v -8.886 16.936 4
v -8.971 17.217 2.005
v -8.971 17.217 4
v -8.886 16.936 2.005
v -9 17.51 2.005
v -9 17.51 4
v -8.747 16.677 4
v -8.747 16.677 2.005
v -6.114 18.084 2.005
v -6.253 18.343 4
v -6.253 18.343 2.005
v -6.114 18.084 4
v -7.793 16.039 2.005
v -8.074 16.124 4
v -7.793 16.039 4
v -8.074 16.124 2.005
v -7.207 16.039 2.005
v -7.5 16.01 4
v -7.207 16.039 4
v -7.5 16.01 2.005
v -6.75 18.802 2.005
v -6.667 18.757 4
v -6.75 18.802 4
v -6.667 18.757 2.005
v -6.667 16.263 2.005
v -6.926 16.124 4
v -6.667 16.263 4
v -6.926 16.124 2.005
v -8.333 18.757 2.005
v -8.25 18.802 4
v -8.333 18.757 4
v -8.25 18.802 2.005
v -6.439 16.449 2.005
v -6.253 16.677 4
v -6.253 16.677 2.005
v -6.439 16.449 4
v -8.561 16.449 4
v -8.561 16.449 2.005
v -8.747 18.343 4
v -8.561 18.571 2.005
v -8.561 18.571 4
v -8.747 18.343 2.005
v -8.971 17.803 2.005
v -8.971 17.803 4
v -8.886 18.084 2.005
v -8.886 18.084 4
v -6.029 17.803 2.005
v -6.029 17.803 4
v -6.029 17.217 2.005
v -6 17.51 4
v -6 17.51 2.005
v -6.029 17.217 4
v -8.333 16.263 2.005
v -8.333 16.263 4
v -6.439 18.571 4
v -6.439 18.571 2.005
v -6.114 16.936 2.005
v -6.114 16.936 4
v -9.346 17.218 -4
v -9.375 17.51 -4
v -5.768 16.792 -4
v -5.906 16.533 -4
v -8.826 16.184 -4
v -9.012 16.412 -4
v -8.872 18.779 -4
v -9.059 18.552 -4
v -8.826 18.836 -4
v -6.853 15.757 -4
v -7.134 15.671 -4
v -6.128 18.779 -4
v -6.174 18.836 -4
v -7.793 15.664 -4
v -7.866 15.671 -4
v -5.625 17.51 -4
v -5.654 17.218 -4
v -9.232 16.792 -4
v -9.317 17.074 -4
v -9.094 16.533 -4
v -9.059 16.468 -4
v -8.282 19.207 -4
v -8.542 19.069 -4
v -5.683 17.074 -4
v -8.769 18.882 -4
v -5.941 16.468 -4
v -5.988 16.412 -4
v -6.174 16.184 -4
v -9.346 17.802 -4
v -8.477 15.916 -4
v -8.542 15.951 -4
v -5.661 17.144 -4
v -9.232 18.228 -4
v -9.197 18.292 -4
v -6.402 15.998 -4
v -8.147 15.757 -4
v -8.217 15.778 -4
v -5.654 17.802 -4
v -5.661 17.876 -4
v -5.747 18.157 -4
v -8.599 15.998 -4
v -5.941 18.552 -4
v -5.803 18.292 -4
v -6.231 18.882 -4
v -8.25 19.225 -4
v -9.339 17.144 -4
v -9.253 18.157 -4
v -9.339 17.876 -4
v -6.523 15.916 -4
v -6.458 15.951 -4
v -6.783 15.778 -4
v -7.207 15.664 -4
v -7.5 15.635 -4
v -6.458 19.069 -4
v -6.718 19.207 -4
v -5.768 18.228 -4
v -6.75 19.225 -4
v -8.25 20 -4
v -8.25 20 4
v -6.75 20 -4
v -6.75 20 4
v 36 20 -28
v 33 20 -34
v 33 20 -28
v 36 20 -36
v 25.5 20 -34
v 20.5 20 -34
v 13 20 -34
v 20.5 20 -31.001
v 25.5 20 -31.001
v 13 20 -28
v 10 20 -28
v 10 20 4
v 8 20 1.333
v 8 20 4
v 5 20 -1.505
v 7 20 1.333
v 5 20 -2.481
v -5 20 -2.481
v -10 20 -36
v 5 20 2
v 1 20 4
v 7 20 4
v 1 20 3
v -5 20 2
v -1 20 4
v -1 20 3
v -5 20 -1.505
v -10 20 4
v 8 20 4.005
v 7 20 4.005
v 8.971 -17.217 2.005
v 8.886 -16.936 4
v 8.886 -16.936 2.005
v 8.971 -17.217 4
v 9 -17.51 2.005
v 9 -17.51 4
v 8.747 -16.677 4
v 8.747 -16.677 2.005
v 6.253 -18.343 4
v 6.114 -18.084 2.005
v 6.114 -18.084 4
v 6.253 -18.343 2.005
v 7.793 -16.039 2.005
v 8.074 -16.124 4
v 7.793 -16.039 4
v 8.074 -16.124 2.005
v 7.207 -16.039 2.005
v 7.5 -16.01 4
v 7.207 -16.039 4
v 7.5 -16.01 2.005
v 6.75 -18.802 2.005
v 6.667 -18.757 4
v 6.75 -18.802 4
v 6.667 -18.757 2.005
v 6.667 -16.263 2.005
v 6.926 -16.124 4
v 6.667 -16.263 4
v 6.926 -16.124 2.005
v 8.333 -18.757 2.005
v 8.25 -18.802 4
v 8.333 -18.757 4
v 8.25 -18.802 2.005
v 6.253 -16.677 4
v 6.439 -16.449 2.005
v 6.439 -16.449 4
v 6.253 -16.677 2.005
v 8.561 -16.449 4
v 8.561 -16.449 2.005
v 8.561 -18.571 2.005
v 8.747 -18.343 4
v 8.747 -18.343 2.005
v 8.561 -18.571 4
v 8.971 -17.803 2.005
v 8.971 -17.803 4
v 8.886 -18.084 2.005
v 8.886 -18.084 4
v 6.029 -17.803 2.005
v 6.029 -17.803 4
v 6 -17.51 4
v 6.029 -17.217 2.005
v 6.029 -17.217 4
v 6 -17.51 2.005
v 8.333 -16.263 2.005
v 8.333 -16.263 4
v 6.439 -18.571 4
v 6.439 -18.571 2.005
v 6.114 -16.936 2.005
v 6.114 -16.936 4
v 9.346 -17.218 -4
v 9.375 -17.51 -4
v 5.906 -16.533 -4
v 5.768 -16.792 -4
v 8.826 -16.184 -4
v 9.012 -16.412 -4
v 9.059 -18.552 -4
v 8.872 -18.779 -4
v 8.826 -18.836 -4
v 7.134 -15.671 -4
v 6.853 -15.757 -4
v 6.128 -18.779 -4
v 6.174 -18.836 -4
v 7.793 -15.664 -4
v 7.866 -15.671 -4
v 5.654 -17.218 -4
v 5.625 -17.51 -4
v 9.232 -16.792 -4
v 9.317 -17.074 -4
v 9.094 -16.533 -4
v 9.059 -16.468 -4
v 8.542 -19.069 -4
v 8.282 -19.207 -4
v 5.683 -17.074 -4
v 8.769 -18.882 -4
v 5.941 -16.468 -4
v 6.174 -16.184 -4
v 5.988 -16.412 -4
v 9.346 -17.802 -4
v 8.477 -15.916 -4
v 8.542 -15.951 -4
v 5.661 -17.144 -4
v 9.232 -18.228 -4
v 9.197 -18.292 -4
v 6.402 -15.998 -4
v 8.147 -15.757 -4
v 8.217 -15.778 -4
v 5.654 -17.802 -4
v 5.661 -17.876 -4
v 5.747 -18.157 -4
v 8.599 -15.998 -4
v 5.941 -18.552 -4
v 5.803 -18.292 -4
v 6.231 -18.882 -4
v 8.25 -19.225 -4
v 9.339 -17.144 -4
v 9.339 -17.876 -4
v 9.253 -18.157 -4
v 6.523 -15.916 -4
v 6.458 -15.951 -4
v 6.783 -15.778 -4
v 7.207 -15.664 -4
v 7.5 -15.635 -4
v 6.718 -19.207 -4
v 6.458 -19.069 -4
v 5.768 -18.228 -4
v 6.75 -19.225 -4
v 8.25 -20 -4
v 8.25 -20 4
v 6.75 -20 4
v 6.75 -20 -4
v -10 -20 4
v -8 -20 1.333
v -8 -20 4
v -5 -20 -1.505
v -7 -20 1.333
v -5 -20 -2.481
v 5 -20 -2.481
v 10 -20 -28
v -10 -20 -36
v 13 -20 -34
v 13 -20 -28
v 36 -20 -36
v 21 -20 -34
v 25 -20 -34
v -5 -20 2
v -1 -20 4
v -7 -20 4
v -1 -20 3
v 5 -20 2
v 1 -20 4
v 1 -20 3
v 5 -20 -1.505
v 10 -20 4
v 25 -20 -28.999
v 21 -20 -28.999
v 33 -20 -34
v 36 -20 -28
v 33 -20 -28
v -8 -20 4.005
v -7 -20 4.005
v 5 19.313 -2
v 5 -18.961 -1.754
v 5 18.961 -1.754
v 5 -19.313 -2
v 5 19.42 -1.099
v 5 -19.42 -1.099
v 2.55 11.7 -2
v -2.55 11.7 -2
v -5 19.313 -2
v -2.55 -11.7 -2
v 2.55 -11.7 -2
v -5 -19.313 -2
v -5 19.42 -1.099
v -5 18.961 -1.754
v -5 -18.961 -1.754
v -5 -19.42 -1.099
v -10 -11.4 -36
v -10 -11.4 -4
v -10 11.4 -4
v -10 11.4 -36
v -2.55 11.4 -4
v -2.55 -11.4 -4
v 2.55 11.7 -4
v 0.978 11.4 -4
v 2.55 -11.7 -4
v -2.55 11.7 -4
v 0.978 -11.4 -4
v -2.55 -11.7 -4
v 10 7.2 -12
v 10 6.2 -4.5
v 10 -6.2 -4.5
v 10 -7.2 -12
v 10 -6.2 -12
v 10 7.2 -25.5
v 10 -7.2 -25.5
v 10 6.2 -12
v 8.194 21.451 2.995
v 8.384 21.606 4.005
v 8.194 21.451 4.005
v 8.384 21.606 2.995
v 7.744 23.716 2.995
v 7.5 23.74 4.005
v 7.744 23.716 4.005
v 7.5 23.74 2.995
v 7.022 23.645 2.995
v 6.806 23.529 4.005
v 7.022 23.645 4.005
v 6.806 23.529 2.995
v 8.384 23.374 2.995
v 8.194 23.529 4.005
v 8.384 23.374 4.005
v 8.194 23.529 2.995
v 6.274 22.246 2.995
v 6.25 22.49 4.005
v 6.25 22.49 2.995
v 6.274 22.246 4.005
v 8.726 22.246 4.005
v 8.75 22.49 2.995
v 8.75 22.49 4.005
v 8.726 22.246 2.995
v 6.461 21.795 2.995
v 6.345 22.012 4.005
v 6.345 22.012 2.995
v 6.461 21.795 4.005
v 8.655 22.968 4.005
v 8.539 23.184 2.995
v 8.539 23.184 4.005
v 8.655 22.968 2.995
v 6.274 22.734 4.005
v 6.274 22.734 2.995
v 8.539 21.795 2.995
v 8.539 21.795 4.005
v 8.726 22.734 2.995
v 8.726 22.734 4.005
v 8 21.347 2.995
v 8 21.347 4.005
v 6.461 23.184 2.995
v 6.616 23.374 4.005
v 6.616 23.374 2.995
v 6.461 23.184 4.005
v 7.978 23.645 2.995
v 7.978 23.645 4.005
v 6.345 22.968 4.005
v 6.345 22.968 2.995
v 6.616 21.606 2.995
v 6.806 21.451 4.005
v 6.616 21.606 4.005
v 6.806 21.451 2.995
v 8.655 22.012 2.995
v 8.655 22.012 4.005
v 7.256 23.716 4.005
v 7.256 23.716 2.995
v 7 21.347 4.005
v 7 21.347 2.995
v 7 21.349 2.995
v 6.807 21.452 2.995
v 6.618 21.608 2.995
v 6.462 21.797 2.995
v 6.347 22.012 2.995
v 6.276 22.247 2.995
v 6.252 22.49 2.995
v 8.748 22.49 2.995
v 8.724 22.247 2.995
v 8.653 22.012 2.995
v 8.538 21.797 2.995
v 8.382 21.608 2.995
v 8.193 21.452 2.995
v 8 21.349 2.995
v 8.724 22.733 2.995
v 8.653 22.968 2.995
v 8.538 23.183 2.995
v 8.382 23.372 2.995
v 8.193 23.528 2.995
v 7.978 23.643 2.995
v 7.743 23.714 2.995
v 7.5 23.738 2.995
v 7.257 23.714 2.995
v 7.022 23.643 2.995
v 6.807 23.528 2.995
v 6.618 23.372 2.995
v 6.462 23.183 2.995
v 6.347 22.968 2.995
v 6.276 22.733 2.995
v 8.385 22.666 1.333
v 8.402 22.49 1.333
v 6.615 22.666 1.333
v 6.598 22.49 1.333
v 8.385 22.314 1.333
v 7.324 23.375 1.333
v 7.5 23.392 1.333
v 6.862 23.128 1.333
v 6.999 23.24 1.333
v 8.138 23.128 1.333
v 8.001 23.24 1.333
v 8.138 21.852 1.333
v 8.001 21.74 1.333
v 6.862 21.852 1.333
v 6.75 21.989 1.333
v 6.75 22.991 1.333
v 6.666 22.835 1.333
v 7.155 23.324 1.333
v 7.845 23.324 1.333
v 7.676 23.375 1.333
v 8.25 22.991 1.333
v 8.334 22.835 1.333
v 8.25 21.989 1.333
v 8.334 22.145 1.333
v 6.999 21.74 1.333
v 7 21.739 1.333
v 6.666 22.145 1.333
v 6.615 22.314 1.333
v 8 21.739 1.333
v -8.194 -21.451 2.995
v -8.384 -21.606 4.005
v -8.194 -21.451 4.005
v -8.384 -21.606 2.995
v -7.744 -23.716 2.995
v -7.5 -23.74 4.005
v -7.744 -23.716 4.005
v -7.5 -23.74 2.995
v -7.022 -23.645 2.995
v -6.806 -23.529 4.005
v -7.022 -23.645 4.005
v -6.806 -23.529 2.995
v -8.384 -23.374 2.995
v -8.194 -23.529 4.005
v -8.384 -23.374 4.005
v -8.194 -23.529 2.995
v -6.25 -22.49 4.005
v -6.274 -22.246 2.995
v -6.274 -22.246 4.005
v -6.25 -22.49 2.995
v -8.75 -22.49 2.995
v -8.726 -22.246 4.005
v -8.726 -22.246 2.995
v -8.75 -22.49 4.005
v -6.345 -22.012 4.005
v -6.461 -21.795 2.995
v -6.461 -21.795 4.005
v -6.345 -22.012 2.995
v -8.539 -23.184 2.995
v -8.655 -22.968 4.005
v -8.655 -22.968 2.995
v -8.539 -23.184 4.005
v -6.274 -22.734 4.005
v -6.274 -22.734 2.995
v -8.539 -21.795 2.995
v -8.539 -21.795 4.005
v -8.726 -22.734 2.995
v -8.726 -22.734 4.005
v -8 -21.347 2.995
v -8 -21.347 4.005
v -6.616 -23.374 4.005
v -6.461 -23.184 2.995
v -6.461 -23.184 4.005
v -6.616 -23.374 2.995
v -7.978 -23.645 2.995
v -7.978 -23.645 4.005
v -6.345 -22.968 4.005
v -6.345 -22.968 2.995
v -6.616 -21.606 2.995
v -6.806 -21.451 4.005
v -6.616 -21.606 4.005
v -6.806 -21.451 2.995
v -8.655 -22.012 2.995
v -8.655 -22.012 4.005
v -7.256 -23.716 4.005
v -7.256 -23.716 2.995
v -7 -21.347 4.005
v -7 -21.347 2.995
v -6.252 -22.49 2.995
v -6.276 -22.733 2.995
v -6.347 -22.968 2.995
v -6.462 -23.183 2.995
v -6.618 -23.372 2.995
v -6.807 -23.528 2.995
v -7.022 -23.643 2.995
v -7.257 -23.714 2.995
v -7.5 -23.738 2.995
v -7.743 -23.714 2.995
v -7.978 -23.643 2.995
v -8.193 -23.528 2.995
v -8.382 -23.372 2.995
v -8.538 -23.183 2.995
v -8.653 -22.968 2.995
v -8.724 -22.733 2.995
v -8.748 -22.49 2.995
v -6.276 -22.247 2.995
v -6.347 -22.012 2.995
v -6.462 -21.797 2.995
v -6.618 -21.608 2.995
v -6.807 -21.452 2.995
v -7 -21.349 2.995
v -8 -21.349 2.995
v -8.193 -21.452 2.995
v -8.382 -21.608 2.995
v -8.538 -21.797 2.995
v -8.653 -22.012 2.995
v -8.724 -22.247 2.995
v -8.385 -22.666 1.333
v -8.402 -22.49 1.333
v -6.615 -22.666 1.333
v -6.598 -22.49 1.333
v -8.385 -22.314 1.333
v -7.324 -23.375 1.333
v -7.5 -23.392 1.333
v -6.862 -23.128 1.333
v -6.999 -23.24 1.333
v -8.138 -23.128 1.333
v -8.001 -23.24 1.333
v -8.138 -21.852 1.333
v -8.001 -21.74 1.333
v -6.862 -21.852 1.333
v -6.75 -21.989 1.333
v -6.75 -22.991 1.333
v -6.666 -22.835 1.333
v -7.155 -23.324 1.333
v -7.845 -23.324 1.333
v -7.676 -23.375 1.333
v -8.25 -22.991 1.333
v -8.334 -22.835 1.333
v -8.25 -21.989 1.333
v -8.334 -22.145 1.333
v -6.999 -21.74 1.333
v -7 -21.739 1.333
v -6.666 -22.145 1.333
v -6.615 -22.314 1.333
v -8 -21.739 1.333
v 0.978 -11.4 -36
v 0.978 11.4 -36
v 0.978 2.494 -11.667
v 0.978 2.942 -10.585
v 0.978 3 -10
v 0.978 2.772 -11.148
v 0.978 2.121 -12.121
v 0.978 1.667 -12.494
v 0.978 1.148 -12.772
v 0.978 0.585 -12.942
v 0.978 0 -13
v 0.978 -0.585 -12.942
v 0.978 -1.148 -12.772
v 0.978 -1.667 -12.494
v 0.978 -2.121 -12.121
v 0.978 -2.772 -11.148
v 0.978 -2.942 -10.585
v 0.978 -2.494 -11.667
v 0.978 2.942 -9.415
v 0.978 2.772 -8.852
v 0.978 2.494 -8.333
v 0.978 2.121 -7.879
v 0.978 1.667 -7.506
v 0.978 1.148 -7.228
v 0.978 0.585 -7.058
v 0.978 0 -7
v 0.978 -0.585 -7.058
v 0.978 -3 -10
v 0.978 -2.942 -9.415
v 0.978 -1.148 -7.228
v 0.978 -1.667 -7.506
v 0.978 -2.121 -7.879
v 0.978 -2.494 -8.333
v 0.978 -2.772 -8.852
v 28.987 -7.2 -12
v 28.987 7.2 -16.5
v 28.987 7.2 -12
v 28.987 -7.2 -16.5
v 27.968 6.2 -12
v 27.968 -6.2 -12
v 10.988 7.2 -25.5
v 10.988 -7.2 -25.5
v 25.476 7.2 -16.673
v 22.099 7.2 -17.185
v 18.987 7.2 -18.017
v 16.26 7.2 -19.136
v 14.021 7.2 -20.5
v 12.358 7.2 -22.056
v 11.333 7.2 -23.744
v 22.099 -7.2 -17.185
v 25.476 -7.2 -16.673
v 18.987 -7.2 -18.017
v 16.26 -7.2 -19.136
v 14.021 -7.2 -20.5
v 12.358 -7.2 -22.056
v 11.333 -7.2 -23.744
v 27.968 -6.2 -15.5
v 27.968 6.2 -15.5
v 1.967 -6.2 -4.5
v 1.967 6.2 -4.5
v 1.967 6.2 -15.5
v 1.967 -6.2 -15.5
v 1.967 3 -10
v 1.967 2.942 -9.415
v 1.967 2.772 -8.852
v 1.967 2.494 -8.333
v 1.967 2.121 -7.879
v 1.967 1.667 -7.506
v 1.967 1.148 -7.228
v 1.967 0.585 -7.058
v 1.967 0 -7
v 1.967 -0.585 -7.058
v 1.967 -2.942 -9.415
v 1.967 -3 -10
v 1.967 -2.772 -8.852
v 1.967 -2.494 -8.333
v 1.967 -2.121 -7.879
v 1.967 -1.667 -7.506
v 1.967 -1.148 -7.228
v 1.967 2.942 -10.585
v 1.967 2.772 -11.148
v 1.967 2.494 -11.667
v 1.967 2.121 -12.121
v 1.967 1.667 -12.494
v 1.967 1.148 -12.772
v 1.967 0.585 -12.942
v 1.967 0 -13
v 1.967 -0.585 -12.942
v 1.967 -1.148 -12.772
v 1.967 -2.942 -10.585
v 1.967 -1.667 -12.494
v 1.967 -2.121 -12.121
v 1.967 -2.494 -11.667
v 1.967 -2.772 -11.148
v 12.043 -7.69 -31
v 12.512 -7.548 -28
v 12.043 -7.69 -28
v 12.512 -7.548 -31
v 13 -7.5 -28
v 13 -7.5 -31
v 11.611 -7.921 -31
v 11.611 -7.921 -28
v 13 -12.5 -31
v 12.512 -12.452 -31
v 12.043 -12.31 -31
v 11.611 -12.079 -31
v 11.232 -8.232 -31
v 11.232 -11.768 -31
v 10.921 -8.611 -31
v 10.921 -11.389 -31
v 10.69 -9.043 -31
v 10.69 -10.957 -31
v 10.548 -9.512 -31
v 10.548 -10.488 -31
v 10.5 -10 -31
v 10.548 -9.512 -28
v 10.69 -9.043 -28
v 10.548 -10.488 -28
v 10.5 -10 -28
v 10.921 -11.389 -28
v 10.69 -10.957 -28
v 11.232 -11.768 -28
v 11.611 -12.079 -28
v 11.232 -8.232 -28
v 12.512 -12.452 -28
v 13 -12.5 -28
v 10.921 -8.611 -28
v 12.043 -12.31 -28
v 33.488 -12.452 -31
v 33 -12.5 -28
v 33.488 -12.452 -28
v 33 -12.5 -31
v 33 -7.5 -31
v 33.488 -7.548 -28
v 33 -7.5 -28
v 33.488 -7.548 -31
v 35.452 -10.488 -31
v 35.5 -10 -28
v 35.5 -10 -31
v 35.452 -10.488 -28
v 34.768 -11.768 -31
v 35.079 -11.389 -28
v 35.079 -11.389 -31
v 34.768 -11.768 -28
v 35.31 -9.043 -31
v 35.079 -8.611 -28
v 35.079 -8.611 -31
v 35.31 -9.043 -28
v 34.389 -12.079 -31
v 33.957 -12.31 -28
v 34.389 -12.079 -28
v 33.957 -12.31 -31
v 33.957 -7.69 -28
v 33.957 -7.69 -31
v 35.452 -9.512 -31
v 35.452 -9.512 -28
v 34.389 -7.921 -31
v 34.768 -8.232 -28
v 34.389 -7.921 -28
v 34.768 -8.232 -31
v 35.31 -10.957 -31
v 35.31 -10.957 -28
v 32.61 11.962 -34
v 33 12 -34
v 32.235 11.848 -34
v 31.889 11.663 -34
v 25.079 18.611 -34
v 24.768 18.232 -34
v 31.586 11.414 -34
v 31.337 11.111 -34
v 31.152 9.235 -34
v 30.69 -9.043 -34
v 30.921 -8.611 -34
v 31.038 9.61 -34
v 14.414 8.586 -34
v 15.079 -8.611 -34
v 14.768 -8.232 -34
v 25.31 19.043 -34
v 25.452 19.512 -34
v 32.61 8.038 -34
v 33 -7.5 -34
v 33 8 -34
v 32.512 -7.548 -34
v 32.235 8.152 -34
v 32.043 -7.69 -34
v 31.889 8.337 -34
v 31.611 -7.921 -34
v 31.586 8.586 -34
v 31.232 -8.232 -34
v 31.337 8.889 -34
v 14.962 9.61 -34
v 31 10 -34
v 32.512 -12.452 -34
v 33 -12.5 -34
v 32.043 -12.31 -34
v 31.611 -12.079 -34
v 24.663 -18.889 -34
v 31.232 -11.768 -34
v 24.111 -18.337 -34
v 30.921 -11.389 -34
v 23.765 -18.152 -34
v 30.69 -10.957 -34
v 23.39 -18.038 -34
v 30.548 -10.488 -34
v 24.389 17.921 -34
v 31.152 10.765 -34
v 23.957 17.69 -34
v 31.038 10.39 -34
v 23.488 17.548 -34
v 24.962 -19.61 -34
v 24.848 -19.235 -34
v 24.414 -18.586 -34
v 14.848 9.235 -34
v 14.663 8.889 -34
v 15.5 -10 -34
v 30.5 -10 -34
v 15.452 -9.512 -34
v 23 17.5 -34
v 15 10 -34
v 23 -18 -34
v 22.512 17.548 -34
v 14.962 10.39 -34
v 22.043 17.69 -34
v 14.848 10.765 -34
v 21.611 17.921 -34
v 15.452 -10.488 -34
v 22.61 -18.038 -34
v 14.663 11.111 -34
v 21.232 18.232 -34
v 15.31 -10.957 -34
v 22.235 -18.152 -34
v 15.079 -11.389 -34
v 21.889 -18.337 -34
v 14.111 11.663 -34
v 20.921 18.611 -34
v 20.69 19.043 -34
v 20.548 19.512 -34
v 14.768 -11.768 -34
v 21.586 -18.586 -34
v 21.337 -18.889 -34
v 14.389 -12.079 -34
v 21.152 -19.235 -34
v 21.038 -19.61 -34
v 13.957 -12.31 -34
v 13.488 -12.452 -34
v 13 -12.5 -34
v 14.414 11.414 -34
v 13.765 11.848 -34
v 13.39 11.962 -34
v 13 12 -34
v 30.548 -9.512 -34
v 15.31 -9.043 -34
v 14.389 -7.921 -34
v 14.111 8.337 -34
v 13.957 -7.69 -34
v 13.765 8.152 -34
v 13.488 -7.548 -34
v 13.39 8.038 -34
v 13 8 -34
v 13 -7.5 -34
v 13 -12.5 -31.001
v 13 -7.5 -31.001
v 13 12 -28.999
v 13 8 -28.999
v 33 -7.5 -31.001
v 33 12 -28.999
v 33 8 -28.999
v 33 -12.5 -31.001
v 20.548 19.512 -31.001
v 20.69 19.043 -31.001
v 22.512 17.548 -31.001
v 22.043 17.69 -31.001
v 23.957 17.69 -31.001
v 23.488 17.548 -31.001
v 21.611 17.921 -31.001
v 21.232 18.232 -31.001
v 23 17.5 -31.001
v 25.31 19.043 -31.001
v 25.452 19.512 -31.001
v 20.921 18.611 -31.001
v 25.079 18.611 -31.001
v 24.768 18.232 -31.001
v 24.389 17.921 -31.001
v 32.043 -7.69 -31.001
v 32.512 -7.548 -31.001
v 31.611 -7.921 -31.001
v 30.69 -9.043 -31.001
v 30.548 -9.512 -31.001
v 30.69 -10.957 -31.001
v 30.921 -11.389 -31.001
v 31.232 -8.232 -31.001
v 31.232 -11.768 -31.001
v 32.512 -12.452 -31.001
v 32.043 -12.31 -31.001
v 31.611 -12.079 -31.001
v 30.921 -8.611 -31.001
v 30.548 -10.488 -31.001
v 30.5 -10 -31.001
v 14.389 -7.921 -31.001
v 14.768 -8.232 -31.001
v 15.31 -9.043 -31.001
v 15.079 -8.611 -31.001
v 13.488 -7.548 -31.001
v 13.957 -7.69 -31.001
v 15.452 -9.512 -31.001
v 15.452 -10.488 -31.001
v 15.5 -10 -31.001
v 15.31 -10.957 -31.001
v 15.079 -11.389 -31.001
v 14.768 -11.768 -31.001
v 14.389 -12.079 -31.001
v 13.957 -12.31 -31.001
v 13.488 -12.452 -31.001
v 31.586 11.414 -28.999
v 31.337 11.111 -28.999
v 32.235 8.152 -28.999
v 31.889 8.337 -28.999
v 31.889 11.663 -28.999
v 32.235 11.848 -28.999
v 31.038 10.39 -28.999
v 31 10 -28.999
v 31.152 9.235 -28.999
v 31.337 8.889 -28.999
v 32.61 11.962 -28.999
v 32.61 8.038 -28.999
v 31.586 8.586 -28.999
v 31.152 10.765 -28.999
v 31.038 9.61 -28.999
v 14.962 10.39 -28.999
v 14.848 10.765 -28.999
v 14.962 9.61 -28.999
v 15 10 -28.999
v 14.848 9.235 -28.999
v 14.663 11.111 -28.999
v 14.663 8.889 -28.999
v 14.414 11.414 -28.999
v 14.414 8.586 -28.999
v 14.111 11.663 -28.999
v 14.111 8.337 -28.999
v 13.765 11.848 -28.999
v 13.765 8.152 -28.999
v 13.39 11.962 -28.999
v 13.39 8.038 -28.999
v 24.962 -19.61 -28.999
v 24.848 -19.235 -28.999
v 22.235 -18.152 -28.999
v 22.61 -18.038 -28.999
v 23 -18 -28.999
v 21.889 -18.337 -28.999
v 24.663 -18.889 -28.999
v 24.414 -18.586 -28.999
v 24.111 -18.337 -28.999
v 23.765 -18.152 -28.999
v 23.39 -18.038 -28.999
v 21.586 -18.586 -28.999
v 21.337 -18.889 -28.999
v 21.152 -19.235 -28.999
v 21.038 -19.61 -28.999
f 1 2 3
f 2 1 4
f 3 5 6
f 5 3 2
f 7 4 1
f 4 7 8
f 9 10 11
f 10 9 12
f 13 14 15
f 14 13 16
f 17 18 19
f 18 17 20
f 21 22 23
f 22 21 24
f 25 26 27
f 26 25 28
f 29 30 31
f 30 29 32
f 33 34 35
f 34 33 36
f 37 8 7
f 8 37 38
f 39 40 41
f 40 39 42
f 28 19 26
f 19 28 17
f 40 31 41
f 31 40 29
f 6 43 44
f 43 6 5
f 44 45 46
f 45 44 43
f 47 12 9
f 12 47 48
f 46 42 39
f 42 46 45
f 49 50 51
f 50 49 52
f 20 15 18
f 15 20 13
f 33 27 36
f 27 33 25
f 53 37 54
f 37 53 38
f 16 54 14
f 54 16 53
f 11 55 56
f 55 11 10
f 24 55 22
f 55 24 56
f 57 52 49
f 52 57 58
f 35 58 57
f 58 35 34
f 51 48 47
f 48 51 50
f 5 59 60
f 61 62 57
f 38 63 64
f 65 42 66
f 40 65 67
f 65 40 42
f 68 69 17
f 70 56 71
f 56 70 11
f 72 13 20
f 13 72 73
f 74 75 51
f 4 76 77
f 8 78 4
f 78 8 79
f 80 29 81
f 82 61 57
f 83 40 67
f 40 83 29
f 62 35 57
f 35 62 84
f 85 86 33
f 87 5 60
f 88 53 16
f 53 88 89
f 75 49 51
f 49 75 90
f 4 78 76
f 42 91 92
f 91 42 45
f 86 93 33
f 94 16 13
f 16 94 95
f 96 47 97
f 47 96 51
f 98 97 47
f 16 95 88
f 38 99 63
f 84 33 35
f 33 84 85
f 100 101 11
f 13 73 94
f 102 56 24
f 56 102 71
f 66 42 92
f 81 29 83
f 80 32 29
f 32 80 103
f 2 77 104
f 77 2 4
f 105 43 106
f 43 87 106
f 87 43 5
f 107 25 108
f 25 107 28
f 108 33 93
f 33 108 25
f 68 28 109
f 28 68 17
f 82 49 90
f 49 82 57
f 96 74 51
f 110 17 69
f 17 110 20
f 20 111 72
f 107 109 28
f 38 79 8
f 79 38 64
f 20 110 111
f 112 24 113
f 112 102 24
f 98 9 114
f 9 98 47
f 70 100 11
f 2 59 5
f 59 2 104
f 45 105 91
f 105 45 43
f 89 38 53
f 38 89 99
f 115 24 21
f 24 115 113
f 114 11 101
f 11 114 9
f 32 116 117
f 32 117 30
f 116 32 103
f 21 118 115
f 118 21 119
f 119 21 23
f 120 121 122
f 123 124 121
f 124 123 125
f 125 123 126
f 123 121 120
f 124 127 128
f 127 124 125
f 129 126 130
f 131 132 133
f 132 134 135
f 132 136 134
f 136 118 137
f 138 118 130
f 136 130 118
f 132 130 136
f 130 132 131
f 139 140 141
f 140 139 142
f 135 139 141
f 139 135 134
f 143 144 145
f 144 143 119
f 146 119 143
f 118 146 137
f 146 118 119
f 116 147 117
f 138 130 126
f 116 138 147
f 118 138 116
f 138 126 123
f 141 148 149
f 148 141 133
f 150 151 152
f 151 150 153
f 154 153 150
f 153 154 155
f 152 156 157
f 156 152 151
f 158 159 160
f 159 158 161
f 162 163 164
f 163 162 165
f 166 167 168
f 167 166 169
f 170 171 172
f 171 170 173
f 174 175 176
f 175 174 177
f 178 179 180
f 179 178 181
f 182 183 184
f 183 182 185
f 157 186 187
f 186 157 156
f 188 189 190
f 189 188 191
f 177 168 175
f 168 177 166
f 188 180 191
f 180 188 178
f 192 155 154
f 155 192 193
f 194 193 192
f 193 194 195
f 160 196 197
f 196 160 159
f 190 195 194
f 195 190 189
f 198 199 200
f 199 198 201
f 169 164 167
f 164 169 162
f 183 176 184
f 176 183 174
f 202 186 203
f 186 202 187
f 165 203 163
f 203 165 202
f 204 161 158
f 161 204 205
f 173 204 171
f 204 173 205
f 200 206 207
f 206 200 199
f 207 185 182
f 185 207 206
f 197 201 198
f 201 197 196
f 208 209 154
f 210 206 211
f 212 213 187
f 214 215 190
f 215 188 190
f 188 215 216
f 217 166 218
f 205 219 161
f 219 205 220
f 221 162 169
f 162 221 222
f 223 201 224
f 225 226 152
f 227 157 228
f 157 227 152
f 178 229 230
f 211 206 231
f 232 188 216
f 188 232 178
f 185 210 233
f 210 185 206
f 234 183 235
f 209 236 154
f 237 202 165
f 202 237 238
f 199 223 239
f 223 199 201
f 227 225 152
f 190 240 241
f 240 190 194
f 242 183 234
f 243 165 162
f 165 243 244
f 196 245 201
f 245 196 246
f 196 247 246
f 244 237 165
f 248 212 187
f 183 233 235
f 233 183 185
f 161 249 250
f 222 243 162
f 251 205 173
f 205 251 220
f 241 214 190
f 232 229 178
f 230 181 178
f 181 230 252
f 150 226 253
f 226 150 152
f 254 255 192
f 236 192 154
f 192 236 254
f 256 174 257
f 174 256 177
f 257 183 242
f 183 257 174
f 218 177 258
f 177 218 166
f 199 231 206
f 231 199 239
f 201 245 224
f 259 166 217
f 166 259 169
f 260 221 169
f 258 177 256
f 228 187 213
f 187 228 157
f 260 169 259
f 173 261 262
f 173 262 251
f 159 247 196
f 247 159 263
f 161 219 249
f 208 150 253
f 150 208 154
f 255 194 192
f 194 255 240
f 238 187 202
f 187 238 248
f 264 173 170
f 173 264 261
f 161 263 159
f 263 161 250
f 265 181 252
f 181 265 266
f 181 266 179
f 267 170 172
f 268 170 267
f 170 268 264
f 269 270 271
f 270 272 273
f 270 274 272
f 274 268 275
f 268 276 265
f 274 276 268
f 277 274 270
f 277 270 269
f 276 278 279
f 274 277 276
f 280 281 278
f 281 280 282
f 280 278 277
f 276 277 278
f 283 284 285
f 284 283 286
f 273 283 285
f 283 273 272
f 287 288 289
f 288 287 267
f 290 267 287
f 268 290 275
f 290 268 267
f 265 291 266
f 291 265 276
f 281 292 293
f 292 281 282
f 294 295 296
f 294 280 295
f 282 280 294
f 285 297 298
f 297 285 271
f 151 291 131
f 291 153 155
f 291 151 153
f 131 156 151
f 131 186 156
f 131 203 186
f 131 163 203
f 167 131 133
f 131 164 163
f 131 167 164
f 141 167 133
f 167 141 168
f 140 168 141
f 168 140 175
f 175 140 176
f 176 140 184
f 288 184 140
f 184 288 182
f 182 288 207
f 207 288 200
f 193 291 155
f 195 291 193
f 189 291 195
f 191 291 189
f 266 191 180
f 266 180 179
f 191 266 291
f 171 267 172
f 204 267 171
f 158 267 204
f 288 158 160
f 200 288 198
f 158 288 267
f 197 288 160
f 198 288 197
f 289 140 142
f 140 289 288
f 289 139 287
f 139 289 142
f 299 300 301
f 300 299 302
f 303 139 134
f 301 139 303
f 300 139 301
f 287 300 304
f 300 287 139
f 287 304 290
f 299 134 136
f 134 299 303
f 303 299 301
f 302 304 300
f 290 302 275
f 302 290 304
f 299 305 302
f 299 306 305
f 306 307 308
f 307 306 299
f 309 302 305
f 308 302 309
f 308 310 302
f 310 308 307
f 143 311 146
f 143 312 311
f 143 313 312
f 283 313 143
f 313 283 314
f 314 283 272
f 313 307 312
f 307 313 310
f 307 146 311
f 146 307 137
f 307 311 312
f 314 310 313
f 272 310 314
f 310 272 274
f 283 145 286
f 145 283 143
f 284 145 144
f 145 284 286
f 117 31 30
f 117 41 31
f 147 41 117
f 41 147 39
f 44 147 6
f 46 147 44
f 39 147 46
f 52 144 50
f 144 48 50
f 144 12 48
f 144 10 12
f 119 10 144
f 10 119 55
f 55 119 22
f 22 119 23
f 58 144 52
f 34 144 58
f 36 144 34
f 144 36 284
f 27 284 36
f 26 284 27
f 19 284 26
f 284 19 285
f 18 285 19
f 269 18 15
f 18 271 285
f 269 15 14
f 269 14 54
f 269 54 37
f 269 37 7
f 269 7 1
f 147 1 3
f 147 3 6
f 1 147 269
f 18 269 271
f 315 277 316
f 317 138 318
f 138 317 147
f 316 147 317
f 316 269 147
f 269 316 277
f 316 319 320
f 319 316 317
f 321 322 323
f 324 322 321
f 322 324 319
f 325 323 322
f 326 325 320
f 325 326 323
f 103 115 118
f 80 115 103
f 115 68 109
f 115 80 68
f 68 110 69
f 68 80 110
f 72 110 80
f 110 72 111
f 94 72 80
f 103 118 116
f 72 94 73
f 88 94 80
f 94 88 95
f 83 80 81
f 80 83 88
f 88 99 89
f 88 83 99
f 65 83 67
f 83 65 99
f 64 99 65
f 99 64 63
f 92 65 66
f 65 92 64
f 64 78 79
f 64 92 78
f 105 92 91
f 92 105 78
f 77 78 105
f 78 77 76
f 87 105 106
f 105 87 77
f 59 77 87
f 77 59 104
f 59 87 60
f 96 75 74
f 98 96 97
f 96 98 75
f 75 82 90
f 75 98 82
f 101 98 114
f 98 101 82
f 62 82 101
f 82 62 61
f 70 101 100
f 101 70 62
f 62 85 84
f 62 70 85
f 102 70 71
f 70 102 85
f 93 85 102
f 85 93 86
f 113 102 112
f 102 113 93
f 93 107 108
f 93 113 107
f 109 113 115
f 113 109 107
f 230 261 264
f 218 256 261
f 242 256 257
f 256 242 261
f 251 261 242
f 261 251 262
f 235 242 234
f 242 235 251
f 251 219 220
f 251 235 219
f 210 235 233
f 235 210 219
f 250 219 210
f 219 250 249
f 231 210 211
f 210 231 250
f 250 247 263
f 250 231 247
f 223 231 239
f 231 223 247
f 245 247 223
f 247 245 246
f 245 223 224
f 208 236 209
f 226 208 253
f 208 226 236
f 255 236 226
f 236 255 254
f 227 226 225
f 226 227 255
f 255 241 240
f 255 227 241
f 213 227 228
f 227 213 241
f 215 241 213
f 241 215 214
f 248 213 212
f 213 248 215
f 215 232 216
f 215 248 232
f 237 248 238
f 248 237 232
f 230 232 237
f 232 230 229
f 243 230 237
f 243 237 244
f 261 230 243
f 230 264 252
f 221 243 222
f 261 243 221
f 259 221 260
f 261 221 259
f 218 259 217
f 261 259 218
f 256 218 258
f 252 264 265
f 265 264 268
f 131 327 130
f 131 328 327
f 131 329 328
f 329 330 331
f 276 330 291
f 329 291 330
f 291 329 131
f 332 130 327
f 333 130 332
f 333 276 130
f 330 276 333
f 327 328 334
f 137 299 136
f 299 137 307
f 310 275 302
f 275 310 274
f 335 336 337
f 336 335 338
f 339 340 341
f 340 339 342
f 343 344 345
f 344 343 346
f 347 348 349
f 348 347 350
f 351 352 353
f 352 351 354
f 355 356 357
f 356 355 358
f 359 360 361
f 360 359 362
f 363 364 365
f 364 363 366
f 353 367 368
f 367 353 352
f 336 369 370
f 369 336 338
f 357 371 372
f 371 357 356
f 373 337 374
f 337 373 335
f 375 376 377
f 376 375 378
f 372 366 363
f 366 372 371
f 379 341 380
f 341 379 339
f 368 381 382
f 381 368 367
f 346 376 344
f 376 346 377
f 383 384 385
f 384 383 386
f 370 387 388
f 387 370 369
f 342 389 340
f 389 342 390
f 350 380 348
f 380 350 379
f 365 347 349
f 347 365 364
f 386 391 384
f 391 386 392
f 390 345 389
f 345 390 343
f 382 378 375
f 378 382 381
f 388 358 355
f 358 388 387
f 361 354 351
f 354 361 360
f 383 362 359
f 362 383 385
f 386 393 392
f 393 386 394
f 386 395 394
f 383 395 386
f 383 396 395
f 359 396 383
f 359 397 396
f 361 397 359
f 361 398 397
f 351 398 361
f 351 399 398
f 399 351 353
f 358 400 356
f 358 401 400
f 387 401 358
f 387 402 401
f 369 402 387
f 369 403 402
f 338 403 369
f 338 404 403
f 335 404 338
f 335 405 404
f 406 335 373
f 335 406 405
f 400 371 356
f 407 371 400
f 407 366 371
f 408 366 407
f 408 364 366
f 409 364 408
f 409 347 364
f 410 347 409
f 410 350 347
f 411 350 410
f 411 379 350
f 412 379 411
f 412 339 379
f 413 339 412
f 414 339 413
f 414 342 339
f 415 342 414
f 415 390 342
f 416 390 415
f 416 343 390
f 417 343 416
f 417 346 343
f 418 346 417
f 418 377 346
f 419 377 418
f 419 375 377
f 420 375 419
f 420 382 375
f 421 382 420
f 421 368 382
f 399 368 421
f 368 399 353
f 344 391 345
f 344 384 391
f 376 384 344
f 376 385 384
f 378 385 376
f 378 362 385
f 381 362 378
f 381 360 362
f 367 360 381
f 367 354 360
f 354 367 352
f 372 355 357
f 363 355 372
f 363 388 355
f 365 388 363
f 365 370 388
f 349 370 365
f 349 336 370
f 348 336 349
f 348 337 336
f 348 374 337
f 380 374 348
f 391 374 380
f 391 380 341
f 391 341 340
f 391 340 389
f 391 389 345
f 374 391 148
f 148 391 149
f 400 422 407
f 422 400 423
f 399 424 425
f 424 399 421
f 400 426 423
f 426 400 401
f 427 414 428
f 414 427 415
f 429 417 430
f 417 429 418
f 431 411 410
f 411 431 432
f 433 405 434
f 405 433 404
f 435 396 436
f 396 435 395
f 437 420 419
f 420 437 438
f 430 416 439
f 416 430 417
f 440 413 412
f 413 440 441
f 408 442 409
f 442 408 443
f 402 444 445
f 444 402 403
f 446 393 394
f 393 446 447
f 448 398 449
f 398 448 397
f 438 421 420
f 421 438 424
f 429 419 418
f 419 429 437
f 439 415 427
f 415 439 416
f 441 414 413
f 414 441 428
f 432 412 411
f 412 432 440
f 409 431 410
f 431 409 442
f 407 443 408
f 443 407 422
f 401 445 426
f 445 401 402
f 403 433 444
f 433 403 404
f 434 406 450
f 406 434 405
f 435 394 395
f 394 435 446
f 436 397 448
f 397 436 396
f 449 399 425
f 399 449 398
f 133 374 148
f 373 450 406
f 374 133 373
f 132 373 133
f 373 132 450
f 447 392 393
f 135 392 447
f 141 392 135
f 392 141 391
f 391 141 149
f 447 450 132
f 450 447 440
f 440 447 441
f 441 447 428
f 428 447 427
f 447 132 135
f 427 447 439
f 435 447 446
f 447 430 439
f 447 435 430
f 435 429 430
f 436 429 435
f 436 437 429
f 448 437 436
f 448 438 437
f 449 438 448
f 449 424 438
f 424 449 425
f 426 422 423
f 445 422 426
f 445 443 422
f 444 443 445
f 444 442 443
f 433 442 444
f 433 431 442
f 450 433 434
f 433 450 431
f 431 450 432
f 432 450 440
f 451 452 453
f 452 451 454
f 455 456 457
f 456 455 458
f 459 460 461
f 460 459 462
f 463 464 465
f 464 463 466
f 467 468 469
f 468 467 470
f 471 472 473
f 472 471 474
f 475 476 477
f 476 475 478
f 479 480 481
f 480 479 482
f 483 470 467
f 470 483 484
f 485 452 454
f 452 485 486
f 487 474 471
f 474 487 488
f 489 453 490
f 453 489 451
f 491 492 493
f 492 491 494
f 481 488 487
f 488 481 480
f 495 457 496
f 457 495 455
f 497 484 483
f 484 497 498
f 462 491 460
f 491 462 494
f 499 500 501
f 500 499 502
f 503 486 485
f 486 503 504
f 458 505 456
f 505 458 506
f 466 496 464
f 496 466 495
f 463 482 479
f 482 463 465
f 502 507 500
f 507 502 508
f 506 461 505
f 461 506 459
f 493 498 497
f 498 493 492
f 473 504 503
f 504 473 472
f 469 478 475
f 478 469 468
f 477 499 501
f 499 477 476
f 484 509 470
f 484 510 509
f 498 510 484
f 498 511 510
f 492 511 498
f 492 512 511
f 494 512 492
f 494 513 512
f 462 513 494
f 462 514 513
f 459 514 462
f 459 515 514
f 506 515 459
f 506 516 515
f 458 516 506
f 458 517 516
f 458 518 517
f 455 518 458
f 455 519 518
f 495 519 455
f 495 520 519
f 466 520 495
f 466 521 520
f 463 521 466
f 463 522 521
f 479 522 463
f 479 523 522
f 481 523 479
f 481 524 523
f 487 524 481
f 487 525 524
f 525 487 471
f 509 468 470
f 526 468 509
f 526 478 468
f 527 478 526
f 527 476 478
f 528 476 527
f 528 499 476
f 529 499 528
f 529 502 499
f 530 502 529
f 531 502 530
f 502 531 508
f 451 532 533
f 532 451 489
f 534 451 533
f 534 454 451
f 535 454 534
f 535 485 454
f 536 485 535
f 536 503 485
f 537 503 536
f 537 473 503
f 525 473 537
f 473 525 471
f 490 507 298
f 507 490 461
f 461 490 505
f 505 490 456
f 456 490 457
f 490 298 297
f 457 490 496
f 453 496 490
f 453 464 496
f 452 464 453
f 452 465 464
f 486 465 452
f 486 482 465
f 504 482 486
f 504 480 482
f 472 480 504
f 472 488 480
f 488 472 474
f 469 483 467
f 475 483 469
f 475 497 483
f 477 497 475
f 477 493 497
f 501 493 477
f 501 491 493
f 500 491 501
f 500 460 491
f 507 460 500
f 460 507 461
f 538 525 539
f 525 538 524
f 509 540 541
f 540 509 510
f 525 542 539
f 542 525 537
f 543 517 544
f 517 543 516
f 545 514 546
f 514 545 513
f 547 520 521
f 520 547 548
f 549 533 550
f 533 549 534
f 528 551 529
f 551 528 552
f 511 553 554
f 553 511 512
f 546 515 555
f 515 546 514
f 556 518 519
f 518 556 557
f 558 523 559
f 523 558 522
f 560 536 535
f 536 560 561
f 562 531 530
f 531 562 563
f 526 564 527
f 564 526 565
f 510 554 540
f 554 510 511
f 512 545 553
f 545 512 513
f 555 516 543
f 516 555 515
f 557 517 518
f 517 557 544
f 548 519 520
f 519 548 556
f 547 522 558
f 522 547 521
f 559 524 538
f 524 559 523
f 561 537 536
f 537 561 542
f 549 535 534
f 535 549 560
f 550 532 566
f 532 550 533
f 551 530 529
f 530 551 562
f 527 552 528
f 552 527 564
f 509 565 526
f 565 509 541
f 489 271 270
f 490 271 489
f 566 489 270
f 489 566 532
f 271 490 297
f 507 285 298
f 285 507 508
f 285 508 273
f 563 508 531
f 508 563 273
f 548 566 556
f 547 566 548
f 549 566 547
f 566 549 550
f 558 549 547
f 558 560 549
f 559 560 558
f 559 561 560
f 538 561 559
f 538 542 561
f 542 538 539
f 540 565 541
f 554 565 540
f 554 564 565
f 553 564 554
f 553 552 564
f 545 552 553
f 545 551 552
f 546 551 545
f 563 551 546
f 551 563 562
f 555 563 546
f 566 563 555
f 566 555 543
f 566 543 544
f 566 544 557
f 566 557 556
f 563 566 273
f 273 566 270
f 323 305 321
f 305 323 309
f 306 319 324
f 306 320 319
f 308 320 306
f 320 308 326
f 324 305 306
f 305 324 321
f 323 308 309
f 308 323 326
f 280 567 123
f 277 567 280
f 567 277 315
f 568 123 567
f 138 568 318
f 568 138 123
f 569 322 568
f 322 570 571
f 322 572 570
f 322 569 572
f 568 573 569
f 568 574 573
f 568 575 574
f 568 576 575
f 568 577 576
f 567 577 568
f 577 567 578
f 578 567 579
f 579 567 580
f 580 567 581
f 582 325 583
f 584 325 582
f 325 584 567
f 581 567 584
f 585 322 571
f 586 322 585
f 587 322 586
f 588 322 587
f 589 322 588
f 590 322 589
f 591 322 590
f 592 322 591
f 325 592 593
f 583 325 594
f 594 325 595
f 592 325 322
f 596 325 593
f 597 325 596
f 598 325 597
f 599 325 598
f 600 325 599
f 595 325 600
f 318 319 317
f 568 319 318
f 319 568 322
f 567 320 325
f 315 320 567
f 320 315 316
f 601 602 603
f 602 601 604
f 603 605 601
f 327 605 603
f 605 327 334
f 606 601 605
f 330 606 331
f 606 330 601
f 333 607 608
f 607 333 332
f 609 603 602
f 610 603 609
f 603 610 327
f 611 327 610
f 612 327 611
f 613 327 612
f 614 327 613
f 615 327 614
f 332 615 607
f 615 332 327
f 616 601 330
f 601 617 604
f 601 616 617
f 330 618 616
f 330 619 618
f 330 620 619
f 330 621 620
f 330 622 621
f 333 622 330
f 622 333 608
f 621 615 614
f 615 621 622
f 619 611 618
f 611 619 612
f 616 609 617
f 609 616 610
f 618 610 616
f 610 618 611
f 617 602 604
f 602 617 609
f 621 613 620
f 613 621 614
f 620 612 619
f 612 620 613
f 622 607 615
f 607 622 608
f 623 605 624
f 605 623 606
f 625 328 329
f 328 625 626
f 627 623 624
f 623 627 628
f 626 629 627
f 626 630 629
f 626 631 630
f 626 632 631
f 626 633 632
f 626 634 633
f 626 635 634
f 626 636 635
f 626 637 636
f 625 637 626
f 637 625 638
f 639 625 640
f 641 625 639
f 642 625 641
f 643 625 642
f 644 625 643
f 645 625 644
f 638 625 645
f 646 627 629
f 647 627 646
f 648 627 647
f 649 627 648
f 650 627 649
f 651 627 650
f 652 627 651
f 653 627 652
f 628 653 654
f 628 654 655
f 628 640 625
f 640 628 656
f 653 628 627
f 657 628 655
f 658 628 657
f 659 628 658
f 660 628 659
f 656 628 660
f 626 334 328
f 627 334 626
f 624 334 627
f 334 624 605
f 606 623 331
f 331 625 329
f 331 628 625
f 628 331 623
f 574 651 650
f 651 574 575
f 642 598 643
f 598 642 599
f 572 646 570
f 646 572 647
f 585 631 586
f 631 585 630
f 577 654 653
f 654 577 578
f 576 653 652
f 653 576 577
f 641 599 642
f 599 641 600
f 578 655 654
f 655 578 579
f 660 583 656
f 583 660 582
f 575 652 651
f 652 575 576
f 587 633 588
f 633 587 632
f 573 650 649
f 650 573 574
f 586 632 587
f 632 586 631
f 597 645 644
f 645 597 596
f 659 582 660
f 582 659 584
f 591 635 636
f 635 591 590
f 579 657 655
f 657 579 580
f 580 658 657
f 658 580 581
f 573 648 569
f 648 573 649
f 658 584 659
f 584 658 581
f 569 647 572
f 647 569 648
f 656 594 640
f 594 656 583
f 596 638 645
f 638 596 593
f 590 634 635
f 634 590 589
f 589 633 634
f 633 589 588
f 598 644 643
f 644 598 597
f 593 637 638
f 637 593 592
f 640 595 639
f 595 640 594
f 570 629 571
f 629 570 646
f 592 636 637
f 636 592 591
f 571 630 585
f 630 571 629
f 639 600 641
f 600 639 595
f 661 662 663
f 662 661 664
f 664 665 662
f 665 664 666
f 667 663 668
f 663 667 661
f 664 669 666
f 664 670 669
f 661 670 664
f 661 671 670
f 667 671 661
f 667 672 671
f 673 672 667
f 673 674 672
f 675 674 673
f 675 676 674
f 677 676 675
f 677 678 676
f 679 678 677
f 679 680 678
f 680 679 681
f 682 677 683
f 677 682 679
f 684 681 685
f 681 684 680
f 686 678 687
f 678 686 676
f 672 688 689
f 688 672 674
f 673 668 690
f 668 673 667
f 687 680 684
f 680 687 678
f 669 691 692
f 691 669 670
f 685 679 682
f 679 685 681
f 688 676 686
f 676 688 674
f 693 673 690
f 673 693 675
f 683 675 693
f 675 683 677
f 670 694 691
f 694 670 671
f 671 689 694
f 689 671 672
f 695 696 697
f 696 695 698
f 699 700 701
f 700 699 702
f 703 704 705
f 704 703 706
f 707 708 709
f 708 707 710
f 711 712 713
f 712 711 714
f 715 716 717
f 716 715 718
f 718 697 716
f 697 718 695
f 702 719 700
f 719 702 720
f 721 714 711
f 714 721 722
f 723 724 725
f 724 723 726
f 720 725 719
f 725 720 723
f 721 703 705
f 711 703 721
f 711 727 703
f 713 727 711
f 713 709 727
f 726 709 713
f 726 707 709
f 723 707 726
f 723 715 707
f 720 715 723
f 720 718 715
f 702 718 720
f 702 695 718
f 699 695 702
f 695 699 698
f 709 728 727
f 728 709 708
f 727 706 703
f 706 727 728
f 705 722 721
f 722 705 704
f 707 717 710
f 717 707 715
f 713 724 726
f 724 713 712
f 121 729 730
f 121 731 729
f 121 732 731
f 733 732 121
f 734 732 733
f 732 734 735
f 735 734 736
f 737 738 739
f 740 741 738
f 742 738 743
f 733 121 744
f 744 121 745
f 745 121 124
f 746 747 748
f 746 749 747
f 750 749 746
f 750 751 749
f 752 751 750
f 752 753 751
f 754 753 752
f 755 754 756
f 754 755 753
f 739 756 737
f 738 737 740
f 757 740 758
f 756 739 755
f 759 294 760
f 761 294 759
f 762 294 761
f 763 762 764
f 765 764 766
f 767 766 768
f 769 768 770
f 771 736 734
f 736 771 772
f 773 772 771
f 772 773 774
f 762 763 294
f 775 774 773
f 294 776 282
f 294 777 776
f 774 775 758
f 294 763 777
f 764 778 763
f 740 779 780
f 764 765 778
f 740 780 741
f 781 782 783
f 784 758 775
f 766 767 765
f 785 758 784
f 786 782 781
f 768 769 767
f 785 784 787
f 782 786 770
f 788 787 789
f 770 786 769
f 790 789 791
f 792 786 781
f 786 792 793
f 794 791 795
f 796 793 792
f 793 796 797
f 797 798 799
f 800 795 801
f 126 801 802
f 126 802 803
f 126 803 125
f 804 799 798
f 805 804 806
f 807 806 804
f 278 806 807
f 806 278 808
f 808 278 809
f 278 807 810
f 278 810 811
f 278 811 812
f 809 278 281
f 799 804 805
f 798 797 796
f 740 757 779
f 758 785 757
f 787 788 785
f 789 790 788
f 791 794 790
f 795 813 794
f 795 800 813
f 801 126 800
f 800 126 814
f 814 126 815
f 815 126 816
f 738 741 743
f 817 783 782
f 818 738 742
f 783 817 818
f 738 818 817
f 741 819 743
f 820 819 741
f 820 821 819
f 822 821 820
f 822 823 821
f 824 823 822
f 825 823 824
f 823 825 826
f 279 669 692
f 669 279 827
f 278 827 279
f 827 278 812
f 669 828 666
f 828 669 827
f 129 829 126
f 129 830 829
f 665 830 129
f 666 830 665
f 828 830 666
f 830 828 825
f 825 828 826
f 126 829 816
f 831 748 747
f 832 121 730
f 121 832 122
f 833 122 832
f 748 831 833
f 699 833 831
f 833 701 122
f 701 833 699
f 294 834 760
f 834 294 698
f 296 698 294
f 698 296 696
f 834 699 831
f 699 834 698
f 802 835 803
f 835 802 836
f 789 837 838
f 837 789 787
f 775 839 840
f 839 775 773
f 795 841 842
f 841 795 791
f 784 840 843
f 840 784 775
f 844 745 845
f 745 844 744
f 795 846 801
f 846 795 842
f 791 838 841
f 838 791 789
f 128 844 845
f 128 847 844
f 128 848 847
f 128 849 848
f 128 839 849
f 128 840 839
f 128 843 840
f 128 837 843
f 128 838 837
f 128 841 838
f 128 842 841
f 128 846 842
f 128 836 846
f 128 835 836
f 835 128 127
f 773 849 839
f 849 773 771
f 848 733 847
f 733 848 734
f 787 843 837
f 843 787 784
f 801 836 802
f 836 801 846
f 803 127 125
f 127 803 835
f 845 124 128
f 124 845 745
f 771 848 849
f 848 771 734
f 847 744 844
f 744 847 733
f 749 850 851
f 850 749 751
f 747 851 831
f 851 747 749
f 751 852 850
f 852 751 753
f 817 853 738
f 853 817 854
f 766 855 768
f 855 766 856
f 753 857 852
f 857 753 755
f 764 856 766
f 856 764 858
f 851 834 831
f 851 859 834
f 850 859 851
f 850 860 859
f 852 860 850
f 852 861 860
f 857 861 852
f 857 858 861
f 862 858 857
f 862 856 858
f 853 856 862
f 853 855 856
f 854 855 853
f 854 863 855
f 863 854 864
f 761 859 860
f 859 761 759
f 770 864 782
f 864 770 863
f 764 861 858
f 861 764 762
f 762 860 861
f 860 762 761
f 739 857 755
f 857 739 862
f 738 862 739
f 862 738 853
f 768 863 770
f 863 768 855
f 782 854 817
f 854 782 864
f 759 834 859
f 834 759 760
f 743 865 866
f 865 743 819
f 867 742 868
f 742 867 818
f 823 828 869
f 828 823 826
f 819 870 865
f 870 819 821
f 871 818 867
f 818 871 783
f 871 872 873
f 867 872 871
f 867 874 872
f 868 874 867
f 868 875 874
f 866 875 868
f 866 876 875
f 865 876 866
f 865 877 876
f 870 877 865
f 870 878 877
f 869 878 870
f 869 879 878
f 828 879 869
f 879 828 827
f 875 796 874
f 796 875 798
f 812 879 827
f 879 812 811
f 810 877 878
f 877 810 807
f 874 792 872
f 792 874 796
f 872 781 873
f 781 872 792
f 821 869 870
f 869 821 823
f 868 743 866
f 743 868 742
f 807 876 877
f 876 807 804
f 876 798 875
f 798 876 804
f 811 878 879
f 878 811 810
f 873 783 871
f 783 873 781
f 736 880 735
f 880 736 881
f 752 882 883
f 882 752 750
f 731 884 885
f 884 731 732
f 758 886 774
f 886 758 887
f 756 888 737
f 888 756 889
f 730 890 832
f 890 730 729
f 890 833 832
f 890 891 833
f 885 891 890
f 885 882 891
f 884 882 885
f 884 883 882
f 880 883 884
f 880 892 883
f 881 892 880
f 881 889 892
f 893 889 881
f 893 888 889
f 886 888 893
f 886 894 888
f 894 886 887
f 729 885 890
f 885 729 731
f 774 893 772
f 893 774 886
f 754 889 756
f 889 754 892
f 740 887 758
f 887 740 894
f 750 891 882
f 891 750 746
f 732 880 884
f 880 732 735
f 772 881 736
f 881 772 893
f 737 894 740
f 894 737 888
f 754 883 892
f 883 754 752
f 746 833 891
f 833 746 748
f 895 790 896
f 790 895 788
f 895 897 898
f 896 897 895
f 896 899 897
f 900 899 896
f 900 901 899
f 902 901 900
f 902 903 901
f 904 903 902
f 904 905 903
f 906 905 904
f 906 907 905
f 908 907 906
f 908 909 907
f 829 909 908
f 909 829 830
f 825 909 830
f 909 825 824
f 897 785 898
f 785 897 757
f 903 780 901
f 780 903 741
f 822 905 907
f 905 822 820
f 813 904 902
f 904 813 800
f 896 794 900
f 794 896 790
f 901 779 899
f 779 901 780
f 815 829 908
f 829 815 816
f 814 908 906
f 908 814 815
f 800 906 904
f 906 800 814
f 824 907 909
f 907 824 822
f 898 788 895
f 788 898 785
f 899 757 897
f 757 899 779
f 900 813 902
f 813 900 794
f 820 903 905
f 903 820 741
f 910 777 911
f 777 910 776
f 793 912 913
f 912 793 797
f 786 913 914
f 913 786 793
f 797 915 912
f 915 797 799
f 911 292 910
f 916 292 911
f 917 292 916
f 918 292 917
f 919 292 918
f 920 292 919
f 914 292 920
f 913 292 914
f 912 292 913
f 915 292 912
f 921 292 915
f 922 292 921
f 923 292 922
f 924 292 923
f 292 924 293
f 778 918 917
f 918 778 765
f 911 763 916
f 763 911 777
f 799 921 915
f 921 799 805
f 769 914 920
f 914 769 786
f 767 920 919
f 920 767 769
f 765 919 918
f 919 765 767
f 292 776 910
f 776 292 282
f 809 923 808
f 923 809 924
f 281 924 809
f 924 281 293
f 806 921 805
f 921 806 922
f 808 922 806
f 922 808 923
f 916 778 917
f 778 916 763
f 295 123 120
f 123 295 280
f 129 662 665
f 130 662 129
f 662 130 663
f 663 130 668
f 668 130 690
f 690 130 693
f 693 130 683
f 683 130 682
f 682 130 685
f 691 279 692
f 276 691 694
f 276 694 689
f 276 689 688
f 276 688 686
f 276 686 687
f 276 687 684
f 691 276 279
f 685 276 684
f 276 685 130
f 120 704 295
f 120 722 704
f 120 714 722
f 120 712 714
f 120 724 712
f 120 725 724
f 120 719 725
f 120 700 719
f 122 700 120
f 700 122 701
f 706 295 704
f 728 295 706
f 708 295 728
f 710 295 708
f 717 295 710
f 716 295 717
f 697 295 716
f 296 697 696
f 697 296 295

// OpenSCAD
/*

  ttt_motor_holder_grove.scad
  
  (c) olikraus@gmail.com

  This work is licensed under the Creative Commons Attribution-NonCommercial-ShareAlike 4.0 International License. 
  To view a copy of this license, visit http://creativecommons.org/licenses/by-nc-sa/4.0/.
  
  grid tile train tube track motor house 
  
  n20 dc gear motor 10x12x25
  
  Mini N20 Gear Reduction Motor DC 3V-6V 55RPM Slow Speed
  
*/
include <train_tube_track.scad>;

motor_length = 26;
motor_height = 11;
motor_width = 12.4;
motor_holder_wall = 1;

//translate([0,0,height])
union() {
//    straight_track_h_double_plug(grid);
difference() {
    straight_track_double_plug(grid);

    /* cut out gear opening */
    translate([0,0,-inner_height+d])
    cube([ship_width*house_gear_width_factor,
    ship_length*1.95, inner_height], center=true);
}

difference() {

    union() {
        translate([0,0,-height/2-outer_height/2]) 
        difference() {
            cube([outer_width, grid, height], center=true);
            translate([-outer_width/2+gear_thickness/2,0,d])
            cube([outer_width, ship_length*1.9, height+3*d], center=true);
        }
        /* N20 motor block holder */
        translate([motor_length/2+gear_thickness/2+d+1,0,
         -gear_radius-inner_height/2-motor_height/4-motor_holder_wall*2-4])
        difference() {
            cube([motor_length+motor_holder_wall*2, 
                motor_width+motor_holder_wall*2,
                motor_height/2+8], center=true);
            translate([(motor_length+motor_holder_wall*2)/2,
                0, -(motor_height/2+8)/2])
            scale([2, 1, 1])
            rotate([90,0,0])
            cylinder(r=8+1, h=motor_width+motor_holder_wall*2+0.1, center=true);
        }
    }
    
    /* N20 motor block cutout*/
    translate([motor_length/2+gear_thickness/2-d+1,0,-gear_radius-inner_height/2])
    cube([motor_length, motor_width, motor_height], center=true);
    
    /* N20 motor axis cutout*/    
    translate([0,0, -gear_radius-inner_height/2])
    rotate([0,90,0])
    cylinder(d=6,h=grid,center=true);
}

translate([13+outer_width/2,0,-height-outer_height/2+4])
difference() {
    cube([26, grid, 8], center=true);    
    translate([0,0,-4 + 2]) // -5: cube +2 bottom height
    rotate([0,0,90])
    grove_2x1(3, 12);
}

//translate([0,0,-gear_radius-inner_height/2])
//rotate([0,90,0])
//ttt_gear(3, 0.5);
}

//translate([3*grid/4, 0, -height])
//platform();
